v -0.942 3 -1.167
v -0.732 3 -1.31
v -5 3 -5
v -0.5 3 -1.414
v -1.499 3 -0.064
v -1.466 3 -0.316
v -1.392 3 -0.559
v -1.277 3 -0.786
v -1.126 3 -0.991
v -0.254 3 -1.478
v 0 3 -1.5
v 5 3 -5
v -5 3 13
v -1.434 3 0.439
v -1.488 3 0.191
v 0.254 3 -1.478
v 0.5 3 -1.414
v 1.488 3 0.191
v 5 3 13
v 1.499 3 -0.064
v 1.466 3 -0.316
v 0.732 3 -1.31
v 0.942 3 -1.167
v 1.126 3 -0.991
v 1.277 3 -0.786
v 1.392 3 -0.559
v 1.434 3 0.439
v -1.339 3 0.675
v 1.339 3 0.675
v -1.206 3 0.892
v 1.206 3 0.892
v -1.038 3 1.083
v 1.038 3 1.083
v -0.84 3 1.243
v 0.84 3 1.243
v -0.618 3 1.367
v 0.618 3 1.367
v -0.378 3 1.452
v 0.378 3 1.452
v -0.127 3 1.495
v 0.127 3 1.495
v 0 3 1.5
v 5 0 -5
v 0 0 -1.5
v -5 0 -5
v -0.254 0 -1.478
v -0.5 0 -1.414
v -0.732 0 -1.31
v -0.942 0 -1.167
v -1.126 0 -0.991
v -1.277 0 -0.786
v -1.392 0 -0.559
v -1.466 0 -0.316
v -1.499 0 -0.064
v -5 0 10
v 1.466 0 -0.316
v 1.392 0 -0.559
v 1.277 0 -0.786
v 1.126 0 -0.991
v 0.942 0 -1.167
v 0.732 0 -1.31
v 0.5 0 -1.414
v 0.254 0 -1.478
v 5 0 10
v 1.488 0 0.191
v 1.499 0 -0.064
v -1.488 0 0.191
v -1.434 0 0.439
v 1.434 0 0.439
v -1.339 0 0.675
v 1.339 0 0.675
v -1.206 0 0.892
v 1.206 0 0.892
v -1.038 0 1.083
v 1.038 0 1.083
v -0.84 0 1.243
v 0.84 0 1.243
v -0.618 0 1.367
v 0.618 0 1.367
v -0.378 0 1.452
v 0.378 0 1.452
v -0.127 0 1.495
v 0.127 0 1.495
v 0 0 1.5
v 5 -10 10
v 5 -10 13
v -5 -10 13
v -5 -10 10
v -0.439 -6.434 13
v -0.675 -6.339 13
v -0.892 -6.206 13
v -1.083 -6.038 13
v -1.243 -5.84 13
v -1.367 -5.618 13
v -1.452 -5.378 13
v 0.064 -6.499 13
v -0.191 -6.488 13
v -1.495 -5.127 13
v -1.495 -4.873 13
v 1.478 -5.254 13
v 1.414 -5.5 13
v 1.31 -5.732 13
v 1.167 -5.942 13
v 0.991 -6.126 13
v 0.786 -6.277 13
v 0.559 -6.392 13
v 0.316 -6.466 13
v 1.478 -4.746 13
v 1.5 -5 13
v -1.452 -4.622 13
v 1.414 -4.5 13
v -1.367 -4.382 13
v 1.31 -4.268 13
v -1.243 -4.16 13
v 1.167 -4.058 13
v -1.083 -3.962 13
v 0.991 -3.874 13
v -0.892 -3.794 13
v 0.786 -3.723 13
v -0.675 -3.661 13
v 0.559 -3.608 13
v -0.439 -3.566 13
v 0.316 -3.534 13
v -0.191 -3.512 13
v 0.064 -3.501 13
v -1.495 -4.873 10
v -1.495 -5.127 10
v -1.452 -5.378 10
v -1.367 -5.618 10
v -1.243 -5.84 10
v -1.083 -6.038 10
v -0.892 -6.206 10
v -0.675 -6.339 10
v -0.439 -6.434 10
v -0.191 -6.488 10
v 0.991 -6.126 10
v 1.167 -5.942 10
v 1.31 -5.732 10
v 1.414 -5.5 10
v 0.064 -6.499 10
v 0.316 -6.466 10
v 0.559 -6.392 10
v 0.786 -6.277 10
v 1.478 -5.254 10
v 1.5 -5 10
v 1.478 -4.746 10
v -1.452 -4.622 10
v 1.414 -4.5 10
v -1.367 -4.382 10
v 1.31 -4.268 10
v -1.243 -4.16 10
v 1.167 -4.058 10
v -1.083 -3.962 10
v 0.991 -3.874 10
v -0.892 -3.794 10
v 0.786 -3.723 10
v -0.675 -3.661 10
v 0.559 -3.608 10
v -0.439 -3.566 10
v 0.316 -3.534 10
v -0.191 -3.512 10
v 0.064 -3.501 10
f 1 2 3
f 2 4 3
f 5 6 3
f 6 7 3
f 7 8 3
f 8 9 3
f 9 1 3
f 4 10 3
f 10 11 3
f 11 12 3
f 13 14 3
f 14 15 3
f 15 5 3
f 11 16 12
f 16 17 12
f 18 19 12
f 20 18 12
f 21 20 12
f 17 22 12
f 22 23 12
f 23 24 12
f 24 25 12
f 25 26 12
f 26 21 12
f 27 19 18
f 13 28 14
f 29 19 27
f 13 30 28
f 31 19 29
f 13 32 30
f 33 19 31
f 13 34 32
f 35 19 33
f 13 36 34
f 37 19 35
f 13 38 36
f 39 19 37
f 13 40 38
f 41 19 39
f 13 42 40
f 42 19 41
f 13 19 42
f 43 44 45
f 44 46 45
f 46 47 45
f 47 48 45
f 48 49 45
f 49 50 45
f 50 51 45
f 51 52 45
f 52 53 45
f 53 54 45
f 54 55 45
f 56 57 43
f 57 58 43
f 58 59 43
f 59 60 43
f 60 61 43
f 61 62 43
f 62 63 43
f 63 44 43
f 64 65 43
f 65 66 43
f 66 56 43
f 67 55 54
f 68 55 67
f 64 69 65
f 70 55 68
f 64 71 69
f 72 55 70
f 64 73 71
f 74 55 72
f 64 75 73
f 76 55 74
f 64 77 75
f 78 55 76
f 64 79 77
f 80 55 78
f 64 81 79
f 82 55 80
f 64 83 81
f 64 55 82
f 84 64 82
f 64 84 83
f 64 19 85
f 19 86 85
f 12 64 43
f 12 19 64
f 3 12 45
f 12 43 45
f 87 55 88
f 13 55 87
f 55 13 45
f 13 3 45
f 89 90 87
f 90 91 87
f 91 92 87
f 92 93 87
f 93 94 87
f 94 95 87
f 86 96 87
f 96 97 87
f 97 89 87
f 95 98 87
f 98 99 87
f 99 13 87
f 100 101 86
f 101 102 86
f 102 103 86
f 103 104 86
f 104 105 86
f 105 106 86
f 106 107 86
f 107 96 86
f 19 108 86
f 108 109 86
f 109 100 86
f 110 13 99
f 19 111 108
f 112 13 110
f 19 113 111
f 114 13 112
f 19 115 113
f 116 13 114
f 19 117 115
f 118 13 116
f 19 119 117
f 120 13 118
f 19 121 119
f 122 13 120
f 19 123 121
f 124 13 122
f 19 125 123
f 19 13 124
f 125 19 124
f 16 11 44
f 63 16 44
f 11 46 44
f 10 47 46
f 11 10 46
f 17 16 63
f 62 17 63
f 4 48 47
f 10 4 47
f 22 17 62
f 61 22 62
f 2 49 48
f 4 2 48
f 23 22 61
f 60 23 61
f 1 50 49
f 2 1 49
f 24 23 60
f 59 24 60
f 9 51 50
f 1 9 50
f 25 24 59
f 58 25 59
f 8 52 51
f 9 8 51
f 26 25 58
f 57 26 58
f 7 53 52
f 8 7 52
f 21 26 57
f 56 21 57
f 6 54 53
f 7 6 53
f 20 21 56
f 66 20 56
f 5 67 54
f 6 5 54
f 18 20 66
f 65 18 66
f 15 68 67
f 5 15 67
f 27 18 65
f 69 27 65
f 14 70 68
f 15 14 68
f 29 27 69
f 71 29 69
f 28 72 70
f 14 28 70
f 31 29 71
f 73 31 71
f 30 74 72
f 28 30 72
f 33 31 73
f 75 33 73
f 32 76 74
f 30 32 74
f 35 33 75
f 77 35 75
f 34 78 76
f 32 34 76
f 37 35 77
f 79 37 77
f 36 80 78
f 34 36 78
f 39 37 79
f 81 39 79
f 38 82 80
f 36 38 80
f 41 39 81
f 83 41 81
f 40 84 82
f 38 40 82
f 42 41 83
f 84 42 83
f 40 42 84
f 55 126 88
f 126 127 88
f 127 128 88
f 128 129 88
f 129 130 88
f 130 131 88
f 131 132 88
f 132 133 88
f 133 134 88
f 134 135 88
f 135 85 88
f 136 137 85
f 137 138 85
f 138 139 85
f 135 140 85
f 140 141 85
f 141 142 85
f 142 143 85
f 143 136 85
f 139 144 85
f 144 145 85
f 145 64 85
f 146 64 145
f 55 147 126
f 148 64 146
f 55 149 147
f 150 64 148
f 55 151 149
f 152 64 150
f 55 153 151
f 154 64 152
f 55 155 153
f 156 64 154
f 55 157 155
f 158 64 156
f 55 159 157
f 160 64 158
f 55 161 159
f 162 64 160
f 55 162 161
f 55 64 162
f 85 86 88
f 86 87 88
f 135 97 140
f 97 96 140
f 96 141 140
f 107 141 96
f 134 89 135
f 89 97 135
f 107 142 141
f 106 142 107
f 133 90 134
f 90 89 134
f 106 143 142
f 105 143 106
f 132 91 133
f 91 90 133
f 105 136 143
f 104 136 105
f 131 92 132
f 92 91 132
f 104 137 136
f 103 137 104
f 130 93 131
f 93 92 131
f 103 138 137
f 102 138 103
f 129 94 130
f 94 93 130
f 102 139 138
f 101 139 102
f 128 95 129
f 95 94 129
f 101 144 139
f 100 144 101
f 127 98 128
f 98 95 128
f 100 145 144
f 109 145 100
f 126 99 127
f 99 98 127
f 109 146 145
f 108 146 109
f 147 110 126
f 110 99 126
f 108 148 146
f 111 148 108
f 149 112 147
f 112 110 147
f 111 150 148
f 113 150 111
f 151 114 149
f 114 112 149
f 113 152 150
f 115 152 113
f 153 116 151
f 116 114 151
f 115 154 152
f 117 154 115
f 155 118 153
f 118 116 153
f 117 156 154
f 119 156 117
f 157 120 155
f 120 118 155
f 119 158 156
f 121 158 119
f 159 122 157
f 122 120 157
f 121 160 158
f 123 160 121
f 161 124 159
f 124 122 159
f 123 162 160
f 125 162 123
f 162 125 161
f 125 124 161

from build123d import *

# Parameters (mm, degrees)
SKETCH1_W           = 10
SKETCH1_H           = 18
SKETCH1_R           = 1.5
BOSS_EXTRUDE1_DEPTH = 3
SKETCH2_W           = 10
SKETCH2_H           = 3
BOSS_EXTRUDE2_DEPTH = 10
SKETCH3_R           = 1.5
CUT_EXTRUDE1_DEPTH  = 22.1896201


with BuildPart() as part:
    # Sketch1 → Boss-Extrude1 (new body)
    with BuildSketch(Plane(origin=(0, 0, 0), x_dir=(1, 0, 0), z_dir=(0, 1, 0))):
        with Locations((0, -4)):
            Rectangle(SKETCH1_W, SKETCH1_H)
        with Locations(Location((0, 0, 0), (0, 0, 270))):
            Circle(SKETCH1_R, mode=Mode.SUBTRACT)
    extrude(amount=BOSS_EXTRUDE1_DEPTH)

    # Sketch2 → Boss-Extrude2 (add)
    with BuildSketch(Plane.XZ):
        with Locations((0, 11.5)):
            Rectangle(SKETCH2_W, SKETCH2_H)
    extrude(amount=BOSS_EXTRUDE2_DEPTH)

    # Sketch3 → Cut-Extrude1 (cut, through all)
    with BuildSketch(Plane.XY.offset(13)):
        with Locations((0, -5)):
            Circle(SKETCH3_R)
    extrude(amount=-CUT_EXTRUDE1_DEPTH, mode=Mode.SUBTRACT)


solid = part.part
